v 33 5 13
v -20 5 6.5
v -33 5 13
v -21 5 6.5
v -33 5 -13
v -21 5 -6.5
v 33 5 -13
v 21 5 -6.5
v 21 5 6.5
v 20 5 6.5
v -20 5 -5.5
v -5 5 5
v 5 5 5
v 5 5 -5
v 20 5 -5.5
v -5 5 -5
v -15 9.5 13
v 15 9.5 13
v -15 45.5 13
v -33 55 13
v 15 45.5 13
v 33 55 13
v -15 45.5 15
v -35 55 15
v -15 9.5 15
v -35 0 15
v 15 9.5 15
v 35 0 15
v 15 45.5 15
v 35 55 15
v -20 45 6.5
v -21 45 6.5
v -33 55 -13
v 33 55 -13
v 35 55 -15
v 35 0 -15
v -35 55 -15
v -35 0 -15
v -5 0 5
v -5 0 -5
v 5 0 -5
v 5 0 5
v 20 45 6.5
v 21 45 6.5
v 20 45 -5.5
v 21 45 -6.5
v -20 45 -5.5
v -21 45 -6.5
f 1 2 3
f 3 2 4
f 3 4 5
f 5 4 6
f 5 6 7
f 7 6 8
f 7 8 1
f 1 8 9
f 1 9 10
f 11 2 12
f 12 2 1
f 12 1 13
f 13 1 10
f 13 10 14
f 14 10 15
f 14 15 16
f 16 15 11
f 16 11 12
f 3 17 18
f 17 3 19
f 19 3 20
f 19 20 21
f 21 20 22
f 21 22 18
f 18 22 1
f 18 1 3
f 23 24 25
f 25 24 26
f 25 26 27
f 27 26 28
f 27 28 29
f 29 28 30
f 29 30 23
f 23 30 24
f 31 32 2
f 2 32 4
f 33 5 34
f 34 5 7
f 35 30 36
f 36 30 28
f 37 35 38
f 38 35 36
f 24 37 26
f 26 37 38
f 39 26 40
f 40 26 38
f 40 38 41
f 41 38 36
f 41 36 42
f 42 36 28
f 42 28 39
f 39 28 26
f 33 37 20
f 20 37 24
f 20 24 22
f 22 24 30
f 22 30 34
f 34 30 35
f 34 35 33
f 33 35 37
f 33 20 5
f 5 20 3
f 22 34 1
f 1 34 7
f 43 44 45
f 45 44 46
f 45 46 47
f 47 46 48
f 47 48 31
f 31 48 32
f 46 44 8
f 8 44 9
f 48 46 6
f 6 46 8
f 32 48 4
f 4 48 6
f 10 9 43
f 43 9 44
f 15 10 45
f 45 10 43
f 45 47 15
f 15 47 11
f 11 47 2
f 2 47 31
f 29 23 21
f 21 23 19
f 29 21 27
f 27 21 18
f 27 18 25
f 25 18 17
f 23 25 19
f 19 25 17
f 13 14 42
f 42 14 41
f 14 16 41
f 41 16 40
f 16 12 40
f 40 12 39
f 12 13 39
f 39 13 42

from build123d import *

# Parameters (mm, degrees)
SKETCH1_W           = 70
SKETCH1_H           = 30
BOSS_EXTRUDE1_DEPTH = 5
SKETCH2_W           = 70
SKETCH2_H           = 2
BOSS_EXTRUDE2_DEPTH = 50
SKETCH3_W           = 2
SKETCH3_H           = 26
BOSS_EXTRUDE3_DEPTH = 50
SKETCH4_W           = 42
SKETCH4_H           = 13
SKETCH4_W_2         = 40
SKETCH4_H_2         = 11
BOSS_EXTRUDE4_DEPTH = 40
SKETCH6_W           = 40
SKETCH6_H           = 40
CUT_EXTRUDE1_DEPTH  = 2
SKETCH7_W           = 15
SKETCH7_H           = 18
CUT_EXTRUDE2_DEPTH  = 5
SKETCH8_W           = 10
SKETCH8_H           = 10
CUT_EXTRUDE3_DEPTH  = 5


with BuildPart() as part:
    # Sketch1 → Boss-Extrude1 (new body)
    with BuildSketch(Plane(origin=(0, 0, 0), x_dir=(1, 0, 0), z_dir=(0, 1, 0))):
        Rectangle(SKETCH1_W, SKETCH1_H)
    extrude(amount=BOSS_EXTRUDE1_DEPTH)

    # Sketch2 → Boss-Extrude2 (add)
    with BuildSketch(Plane(origin=(0, 5, 0), x_dir=(1, 0, 0), z_dir=(0, 1, 0))):
        with Locations((0, -14)):
            Rectangle(SKETCH2_W, SKETCH2_H)
        with Locations((0, 14)):
            Rectangle(SKETCH2_W, SKETCH2_H)
    extrude(amount=BOSS_EXTRUDE2_DEPTH)

    # Sketch3 → Boss-Extrude3 (add)
    with BuildSketch(Plane(origin=(0, 5, 0), x_dir=(1, 0, 0), z_dir=(0, 1, 0))):
        with Locations((-34, 0)):
            Rectangle(SKETCH3_W, SKETCH3_H)
        with Locations((34, 0)):
            Rectangle(SKETCH3_W, SKETCH3_H)
    extrude(amount=BOSS_EXTRUDE3_DEPTH)

    # Sketch4 → Boss-Extrude4 (add)
    with BuildSketch(Plane(origin=(0, 5, 0), x_dir=(1, 0, 0), z_dir=(0, 1, 0))):
        Rectangle(SKETCH4_W, SKETCH4_H)
        Rectangle(SKETCH4_W_2, SKETCH4_H_2, mode=Mode.SUBTRACT)
    extrude(amount=BOSS_EXTRUDE4_DEPTH)

    # Sketch6 → Cut-Extrude1 (cut)
    with BuildSketch(Plane.XY.offset(6.5)):
        with Locations((0, 25)):
            Rectangle(SKETCH6_W, SKETCH6_H)
    extrude(amount=-CUT_EXTRUDE1_DEPTH, mode=Mode.SUBTRACT)

    # Sketch7 → Cut-Extrude2 (cut)
    with BuildSketch(Plane.XY.offset(15)):
        with Locations((-7.5, 36.5)):
            Rectangle(SKETCH7_W, SKETCH7_H)
        with Locations((7.5, 36.5)):
            Rectangle(SKETCH7_W, SKETCH7_H)
        with Locations((7.5, 18.5)):
            Rectangle(SKETCH7_W, SKETCH7_H)
        with Locations((-7.5, 18.5)):
            Rectangle(SKETCH7_W, SKETCH7_H)
    extrude(amount=-CUT_EXTRUDE2_DEPTH, mode=Mode.SUBTRACT)

    # Sketch8 → Cut-Extrude3 (cut)
    with BuildSketch(Plane.XZ):
        Rectangle(SKETCH8_W, SKETCH8_H)
    extrude(amount=-CUT_EXTRUDE3_DEPTH, mode=Mode.SUBTRACT)


solid = part.part
